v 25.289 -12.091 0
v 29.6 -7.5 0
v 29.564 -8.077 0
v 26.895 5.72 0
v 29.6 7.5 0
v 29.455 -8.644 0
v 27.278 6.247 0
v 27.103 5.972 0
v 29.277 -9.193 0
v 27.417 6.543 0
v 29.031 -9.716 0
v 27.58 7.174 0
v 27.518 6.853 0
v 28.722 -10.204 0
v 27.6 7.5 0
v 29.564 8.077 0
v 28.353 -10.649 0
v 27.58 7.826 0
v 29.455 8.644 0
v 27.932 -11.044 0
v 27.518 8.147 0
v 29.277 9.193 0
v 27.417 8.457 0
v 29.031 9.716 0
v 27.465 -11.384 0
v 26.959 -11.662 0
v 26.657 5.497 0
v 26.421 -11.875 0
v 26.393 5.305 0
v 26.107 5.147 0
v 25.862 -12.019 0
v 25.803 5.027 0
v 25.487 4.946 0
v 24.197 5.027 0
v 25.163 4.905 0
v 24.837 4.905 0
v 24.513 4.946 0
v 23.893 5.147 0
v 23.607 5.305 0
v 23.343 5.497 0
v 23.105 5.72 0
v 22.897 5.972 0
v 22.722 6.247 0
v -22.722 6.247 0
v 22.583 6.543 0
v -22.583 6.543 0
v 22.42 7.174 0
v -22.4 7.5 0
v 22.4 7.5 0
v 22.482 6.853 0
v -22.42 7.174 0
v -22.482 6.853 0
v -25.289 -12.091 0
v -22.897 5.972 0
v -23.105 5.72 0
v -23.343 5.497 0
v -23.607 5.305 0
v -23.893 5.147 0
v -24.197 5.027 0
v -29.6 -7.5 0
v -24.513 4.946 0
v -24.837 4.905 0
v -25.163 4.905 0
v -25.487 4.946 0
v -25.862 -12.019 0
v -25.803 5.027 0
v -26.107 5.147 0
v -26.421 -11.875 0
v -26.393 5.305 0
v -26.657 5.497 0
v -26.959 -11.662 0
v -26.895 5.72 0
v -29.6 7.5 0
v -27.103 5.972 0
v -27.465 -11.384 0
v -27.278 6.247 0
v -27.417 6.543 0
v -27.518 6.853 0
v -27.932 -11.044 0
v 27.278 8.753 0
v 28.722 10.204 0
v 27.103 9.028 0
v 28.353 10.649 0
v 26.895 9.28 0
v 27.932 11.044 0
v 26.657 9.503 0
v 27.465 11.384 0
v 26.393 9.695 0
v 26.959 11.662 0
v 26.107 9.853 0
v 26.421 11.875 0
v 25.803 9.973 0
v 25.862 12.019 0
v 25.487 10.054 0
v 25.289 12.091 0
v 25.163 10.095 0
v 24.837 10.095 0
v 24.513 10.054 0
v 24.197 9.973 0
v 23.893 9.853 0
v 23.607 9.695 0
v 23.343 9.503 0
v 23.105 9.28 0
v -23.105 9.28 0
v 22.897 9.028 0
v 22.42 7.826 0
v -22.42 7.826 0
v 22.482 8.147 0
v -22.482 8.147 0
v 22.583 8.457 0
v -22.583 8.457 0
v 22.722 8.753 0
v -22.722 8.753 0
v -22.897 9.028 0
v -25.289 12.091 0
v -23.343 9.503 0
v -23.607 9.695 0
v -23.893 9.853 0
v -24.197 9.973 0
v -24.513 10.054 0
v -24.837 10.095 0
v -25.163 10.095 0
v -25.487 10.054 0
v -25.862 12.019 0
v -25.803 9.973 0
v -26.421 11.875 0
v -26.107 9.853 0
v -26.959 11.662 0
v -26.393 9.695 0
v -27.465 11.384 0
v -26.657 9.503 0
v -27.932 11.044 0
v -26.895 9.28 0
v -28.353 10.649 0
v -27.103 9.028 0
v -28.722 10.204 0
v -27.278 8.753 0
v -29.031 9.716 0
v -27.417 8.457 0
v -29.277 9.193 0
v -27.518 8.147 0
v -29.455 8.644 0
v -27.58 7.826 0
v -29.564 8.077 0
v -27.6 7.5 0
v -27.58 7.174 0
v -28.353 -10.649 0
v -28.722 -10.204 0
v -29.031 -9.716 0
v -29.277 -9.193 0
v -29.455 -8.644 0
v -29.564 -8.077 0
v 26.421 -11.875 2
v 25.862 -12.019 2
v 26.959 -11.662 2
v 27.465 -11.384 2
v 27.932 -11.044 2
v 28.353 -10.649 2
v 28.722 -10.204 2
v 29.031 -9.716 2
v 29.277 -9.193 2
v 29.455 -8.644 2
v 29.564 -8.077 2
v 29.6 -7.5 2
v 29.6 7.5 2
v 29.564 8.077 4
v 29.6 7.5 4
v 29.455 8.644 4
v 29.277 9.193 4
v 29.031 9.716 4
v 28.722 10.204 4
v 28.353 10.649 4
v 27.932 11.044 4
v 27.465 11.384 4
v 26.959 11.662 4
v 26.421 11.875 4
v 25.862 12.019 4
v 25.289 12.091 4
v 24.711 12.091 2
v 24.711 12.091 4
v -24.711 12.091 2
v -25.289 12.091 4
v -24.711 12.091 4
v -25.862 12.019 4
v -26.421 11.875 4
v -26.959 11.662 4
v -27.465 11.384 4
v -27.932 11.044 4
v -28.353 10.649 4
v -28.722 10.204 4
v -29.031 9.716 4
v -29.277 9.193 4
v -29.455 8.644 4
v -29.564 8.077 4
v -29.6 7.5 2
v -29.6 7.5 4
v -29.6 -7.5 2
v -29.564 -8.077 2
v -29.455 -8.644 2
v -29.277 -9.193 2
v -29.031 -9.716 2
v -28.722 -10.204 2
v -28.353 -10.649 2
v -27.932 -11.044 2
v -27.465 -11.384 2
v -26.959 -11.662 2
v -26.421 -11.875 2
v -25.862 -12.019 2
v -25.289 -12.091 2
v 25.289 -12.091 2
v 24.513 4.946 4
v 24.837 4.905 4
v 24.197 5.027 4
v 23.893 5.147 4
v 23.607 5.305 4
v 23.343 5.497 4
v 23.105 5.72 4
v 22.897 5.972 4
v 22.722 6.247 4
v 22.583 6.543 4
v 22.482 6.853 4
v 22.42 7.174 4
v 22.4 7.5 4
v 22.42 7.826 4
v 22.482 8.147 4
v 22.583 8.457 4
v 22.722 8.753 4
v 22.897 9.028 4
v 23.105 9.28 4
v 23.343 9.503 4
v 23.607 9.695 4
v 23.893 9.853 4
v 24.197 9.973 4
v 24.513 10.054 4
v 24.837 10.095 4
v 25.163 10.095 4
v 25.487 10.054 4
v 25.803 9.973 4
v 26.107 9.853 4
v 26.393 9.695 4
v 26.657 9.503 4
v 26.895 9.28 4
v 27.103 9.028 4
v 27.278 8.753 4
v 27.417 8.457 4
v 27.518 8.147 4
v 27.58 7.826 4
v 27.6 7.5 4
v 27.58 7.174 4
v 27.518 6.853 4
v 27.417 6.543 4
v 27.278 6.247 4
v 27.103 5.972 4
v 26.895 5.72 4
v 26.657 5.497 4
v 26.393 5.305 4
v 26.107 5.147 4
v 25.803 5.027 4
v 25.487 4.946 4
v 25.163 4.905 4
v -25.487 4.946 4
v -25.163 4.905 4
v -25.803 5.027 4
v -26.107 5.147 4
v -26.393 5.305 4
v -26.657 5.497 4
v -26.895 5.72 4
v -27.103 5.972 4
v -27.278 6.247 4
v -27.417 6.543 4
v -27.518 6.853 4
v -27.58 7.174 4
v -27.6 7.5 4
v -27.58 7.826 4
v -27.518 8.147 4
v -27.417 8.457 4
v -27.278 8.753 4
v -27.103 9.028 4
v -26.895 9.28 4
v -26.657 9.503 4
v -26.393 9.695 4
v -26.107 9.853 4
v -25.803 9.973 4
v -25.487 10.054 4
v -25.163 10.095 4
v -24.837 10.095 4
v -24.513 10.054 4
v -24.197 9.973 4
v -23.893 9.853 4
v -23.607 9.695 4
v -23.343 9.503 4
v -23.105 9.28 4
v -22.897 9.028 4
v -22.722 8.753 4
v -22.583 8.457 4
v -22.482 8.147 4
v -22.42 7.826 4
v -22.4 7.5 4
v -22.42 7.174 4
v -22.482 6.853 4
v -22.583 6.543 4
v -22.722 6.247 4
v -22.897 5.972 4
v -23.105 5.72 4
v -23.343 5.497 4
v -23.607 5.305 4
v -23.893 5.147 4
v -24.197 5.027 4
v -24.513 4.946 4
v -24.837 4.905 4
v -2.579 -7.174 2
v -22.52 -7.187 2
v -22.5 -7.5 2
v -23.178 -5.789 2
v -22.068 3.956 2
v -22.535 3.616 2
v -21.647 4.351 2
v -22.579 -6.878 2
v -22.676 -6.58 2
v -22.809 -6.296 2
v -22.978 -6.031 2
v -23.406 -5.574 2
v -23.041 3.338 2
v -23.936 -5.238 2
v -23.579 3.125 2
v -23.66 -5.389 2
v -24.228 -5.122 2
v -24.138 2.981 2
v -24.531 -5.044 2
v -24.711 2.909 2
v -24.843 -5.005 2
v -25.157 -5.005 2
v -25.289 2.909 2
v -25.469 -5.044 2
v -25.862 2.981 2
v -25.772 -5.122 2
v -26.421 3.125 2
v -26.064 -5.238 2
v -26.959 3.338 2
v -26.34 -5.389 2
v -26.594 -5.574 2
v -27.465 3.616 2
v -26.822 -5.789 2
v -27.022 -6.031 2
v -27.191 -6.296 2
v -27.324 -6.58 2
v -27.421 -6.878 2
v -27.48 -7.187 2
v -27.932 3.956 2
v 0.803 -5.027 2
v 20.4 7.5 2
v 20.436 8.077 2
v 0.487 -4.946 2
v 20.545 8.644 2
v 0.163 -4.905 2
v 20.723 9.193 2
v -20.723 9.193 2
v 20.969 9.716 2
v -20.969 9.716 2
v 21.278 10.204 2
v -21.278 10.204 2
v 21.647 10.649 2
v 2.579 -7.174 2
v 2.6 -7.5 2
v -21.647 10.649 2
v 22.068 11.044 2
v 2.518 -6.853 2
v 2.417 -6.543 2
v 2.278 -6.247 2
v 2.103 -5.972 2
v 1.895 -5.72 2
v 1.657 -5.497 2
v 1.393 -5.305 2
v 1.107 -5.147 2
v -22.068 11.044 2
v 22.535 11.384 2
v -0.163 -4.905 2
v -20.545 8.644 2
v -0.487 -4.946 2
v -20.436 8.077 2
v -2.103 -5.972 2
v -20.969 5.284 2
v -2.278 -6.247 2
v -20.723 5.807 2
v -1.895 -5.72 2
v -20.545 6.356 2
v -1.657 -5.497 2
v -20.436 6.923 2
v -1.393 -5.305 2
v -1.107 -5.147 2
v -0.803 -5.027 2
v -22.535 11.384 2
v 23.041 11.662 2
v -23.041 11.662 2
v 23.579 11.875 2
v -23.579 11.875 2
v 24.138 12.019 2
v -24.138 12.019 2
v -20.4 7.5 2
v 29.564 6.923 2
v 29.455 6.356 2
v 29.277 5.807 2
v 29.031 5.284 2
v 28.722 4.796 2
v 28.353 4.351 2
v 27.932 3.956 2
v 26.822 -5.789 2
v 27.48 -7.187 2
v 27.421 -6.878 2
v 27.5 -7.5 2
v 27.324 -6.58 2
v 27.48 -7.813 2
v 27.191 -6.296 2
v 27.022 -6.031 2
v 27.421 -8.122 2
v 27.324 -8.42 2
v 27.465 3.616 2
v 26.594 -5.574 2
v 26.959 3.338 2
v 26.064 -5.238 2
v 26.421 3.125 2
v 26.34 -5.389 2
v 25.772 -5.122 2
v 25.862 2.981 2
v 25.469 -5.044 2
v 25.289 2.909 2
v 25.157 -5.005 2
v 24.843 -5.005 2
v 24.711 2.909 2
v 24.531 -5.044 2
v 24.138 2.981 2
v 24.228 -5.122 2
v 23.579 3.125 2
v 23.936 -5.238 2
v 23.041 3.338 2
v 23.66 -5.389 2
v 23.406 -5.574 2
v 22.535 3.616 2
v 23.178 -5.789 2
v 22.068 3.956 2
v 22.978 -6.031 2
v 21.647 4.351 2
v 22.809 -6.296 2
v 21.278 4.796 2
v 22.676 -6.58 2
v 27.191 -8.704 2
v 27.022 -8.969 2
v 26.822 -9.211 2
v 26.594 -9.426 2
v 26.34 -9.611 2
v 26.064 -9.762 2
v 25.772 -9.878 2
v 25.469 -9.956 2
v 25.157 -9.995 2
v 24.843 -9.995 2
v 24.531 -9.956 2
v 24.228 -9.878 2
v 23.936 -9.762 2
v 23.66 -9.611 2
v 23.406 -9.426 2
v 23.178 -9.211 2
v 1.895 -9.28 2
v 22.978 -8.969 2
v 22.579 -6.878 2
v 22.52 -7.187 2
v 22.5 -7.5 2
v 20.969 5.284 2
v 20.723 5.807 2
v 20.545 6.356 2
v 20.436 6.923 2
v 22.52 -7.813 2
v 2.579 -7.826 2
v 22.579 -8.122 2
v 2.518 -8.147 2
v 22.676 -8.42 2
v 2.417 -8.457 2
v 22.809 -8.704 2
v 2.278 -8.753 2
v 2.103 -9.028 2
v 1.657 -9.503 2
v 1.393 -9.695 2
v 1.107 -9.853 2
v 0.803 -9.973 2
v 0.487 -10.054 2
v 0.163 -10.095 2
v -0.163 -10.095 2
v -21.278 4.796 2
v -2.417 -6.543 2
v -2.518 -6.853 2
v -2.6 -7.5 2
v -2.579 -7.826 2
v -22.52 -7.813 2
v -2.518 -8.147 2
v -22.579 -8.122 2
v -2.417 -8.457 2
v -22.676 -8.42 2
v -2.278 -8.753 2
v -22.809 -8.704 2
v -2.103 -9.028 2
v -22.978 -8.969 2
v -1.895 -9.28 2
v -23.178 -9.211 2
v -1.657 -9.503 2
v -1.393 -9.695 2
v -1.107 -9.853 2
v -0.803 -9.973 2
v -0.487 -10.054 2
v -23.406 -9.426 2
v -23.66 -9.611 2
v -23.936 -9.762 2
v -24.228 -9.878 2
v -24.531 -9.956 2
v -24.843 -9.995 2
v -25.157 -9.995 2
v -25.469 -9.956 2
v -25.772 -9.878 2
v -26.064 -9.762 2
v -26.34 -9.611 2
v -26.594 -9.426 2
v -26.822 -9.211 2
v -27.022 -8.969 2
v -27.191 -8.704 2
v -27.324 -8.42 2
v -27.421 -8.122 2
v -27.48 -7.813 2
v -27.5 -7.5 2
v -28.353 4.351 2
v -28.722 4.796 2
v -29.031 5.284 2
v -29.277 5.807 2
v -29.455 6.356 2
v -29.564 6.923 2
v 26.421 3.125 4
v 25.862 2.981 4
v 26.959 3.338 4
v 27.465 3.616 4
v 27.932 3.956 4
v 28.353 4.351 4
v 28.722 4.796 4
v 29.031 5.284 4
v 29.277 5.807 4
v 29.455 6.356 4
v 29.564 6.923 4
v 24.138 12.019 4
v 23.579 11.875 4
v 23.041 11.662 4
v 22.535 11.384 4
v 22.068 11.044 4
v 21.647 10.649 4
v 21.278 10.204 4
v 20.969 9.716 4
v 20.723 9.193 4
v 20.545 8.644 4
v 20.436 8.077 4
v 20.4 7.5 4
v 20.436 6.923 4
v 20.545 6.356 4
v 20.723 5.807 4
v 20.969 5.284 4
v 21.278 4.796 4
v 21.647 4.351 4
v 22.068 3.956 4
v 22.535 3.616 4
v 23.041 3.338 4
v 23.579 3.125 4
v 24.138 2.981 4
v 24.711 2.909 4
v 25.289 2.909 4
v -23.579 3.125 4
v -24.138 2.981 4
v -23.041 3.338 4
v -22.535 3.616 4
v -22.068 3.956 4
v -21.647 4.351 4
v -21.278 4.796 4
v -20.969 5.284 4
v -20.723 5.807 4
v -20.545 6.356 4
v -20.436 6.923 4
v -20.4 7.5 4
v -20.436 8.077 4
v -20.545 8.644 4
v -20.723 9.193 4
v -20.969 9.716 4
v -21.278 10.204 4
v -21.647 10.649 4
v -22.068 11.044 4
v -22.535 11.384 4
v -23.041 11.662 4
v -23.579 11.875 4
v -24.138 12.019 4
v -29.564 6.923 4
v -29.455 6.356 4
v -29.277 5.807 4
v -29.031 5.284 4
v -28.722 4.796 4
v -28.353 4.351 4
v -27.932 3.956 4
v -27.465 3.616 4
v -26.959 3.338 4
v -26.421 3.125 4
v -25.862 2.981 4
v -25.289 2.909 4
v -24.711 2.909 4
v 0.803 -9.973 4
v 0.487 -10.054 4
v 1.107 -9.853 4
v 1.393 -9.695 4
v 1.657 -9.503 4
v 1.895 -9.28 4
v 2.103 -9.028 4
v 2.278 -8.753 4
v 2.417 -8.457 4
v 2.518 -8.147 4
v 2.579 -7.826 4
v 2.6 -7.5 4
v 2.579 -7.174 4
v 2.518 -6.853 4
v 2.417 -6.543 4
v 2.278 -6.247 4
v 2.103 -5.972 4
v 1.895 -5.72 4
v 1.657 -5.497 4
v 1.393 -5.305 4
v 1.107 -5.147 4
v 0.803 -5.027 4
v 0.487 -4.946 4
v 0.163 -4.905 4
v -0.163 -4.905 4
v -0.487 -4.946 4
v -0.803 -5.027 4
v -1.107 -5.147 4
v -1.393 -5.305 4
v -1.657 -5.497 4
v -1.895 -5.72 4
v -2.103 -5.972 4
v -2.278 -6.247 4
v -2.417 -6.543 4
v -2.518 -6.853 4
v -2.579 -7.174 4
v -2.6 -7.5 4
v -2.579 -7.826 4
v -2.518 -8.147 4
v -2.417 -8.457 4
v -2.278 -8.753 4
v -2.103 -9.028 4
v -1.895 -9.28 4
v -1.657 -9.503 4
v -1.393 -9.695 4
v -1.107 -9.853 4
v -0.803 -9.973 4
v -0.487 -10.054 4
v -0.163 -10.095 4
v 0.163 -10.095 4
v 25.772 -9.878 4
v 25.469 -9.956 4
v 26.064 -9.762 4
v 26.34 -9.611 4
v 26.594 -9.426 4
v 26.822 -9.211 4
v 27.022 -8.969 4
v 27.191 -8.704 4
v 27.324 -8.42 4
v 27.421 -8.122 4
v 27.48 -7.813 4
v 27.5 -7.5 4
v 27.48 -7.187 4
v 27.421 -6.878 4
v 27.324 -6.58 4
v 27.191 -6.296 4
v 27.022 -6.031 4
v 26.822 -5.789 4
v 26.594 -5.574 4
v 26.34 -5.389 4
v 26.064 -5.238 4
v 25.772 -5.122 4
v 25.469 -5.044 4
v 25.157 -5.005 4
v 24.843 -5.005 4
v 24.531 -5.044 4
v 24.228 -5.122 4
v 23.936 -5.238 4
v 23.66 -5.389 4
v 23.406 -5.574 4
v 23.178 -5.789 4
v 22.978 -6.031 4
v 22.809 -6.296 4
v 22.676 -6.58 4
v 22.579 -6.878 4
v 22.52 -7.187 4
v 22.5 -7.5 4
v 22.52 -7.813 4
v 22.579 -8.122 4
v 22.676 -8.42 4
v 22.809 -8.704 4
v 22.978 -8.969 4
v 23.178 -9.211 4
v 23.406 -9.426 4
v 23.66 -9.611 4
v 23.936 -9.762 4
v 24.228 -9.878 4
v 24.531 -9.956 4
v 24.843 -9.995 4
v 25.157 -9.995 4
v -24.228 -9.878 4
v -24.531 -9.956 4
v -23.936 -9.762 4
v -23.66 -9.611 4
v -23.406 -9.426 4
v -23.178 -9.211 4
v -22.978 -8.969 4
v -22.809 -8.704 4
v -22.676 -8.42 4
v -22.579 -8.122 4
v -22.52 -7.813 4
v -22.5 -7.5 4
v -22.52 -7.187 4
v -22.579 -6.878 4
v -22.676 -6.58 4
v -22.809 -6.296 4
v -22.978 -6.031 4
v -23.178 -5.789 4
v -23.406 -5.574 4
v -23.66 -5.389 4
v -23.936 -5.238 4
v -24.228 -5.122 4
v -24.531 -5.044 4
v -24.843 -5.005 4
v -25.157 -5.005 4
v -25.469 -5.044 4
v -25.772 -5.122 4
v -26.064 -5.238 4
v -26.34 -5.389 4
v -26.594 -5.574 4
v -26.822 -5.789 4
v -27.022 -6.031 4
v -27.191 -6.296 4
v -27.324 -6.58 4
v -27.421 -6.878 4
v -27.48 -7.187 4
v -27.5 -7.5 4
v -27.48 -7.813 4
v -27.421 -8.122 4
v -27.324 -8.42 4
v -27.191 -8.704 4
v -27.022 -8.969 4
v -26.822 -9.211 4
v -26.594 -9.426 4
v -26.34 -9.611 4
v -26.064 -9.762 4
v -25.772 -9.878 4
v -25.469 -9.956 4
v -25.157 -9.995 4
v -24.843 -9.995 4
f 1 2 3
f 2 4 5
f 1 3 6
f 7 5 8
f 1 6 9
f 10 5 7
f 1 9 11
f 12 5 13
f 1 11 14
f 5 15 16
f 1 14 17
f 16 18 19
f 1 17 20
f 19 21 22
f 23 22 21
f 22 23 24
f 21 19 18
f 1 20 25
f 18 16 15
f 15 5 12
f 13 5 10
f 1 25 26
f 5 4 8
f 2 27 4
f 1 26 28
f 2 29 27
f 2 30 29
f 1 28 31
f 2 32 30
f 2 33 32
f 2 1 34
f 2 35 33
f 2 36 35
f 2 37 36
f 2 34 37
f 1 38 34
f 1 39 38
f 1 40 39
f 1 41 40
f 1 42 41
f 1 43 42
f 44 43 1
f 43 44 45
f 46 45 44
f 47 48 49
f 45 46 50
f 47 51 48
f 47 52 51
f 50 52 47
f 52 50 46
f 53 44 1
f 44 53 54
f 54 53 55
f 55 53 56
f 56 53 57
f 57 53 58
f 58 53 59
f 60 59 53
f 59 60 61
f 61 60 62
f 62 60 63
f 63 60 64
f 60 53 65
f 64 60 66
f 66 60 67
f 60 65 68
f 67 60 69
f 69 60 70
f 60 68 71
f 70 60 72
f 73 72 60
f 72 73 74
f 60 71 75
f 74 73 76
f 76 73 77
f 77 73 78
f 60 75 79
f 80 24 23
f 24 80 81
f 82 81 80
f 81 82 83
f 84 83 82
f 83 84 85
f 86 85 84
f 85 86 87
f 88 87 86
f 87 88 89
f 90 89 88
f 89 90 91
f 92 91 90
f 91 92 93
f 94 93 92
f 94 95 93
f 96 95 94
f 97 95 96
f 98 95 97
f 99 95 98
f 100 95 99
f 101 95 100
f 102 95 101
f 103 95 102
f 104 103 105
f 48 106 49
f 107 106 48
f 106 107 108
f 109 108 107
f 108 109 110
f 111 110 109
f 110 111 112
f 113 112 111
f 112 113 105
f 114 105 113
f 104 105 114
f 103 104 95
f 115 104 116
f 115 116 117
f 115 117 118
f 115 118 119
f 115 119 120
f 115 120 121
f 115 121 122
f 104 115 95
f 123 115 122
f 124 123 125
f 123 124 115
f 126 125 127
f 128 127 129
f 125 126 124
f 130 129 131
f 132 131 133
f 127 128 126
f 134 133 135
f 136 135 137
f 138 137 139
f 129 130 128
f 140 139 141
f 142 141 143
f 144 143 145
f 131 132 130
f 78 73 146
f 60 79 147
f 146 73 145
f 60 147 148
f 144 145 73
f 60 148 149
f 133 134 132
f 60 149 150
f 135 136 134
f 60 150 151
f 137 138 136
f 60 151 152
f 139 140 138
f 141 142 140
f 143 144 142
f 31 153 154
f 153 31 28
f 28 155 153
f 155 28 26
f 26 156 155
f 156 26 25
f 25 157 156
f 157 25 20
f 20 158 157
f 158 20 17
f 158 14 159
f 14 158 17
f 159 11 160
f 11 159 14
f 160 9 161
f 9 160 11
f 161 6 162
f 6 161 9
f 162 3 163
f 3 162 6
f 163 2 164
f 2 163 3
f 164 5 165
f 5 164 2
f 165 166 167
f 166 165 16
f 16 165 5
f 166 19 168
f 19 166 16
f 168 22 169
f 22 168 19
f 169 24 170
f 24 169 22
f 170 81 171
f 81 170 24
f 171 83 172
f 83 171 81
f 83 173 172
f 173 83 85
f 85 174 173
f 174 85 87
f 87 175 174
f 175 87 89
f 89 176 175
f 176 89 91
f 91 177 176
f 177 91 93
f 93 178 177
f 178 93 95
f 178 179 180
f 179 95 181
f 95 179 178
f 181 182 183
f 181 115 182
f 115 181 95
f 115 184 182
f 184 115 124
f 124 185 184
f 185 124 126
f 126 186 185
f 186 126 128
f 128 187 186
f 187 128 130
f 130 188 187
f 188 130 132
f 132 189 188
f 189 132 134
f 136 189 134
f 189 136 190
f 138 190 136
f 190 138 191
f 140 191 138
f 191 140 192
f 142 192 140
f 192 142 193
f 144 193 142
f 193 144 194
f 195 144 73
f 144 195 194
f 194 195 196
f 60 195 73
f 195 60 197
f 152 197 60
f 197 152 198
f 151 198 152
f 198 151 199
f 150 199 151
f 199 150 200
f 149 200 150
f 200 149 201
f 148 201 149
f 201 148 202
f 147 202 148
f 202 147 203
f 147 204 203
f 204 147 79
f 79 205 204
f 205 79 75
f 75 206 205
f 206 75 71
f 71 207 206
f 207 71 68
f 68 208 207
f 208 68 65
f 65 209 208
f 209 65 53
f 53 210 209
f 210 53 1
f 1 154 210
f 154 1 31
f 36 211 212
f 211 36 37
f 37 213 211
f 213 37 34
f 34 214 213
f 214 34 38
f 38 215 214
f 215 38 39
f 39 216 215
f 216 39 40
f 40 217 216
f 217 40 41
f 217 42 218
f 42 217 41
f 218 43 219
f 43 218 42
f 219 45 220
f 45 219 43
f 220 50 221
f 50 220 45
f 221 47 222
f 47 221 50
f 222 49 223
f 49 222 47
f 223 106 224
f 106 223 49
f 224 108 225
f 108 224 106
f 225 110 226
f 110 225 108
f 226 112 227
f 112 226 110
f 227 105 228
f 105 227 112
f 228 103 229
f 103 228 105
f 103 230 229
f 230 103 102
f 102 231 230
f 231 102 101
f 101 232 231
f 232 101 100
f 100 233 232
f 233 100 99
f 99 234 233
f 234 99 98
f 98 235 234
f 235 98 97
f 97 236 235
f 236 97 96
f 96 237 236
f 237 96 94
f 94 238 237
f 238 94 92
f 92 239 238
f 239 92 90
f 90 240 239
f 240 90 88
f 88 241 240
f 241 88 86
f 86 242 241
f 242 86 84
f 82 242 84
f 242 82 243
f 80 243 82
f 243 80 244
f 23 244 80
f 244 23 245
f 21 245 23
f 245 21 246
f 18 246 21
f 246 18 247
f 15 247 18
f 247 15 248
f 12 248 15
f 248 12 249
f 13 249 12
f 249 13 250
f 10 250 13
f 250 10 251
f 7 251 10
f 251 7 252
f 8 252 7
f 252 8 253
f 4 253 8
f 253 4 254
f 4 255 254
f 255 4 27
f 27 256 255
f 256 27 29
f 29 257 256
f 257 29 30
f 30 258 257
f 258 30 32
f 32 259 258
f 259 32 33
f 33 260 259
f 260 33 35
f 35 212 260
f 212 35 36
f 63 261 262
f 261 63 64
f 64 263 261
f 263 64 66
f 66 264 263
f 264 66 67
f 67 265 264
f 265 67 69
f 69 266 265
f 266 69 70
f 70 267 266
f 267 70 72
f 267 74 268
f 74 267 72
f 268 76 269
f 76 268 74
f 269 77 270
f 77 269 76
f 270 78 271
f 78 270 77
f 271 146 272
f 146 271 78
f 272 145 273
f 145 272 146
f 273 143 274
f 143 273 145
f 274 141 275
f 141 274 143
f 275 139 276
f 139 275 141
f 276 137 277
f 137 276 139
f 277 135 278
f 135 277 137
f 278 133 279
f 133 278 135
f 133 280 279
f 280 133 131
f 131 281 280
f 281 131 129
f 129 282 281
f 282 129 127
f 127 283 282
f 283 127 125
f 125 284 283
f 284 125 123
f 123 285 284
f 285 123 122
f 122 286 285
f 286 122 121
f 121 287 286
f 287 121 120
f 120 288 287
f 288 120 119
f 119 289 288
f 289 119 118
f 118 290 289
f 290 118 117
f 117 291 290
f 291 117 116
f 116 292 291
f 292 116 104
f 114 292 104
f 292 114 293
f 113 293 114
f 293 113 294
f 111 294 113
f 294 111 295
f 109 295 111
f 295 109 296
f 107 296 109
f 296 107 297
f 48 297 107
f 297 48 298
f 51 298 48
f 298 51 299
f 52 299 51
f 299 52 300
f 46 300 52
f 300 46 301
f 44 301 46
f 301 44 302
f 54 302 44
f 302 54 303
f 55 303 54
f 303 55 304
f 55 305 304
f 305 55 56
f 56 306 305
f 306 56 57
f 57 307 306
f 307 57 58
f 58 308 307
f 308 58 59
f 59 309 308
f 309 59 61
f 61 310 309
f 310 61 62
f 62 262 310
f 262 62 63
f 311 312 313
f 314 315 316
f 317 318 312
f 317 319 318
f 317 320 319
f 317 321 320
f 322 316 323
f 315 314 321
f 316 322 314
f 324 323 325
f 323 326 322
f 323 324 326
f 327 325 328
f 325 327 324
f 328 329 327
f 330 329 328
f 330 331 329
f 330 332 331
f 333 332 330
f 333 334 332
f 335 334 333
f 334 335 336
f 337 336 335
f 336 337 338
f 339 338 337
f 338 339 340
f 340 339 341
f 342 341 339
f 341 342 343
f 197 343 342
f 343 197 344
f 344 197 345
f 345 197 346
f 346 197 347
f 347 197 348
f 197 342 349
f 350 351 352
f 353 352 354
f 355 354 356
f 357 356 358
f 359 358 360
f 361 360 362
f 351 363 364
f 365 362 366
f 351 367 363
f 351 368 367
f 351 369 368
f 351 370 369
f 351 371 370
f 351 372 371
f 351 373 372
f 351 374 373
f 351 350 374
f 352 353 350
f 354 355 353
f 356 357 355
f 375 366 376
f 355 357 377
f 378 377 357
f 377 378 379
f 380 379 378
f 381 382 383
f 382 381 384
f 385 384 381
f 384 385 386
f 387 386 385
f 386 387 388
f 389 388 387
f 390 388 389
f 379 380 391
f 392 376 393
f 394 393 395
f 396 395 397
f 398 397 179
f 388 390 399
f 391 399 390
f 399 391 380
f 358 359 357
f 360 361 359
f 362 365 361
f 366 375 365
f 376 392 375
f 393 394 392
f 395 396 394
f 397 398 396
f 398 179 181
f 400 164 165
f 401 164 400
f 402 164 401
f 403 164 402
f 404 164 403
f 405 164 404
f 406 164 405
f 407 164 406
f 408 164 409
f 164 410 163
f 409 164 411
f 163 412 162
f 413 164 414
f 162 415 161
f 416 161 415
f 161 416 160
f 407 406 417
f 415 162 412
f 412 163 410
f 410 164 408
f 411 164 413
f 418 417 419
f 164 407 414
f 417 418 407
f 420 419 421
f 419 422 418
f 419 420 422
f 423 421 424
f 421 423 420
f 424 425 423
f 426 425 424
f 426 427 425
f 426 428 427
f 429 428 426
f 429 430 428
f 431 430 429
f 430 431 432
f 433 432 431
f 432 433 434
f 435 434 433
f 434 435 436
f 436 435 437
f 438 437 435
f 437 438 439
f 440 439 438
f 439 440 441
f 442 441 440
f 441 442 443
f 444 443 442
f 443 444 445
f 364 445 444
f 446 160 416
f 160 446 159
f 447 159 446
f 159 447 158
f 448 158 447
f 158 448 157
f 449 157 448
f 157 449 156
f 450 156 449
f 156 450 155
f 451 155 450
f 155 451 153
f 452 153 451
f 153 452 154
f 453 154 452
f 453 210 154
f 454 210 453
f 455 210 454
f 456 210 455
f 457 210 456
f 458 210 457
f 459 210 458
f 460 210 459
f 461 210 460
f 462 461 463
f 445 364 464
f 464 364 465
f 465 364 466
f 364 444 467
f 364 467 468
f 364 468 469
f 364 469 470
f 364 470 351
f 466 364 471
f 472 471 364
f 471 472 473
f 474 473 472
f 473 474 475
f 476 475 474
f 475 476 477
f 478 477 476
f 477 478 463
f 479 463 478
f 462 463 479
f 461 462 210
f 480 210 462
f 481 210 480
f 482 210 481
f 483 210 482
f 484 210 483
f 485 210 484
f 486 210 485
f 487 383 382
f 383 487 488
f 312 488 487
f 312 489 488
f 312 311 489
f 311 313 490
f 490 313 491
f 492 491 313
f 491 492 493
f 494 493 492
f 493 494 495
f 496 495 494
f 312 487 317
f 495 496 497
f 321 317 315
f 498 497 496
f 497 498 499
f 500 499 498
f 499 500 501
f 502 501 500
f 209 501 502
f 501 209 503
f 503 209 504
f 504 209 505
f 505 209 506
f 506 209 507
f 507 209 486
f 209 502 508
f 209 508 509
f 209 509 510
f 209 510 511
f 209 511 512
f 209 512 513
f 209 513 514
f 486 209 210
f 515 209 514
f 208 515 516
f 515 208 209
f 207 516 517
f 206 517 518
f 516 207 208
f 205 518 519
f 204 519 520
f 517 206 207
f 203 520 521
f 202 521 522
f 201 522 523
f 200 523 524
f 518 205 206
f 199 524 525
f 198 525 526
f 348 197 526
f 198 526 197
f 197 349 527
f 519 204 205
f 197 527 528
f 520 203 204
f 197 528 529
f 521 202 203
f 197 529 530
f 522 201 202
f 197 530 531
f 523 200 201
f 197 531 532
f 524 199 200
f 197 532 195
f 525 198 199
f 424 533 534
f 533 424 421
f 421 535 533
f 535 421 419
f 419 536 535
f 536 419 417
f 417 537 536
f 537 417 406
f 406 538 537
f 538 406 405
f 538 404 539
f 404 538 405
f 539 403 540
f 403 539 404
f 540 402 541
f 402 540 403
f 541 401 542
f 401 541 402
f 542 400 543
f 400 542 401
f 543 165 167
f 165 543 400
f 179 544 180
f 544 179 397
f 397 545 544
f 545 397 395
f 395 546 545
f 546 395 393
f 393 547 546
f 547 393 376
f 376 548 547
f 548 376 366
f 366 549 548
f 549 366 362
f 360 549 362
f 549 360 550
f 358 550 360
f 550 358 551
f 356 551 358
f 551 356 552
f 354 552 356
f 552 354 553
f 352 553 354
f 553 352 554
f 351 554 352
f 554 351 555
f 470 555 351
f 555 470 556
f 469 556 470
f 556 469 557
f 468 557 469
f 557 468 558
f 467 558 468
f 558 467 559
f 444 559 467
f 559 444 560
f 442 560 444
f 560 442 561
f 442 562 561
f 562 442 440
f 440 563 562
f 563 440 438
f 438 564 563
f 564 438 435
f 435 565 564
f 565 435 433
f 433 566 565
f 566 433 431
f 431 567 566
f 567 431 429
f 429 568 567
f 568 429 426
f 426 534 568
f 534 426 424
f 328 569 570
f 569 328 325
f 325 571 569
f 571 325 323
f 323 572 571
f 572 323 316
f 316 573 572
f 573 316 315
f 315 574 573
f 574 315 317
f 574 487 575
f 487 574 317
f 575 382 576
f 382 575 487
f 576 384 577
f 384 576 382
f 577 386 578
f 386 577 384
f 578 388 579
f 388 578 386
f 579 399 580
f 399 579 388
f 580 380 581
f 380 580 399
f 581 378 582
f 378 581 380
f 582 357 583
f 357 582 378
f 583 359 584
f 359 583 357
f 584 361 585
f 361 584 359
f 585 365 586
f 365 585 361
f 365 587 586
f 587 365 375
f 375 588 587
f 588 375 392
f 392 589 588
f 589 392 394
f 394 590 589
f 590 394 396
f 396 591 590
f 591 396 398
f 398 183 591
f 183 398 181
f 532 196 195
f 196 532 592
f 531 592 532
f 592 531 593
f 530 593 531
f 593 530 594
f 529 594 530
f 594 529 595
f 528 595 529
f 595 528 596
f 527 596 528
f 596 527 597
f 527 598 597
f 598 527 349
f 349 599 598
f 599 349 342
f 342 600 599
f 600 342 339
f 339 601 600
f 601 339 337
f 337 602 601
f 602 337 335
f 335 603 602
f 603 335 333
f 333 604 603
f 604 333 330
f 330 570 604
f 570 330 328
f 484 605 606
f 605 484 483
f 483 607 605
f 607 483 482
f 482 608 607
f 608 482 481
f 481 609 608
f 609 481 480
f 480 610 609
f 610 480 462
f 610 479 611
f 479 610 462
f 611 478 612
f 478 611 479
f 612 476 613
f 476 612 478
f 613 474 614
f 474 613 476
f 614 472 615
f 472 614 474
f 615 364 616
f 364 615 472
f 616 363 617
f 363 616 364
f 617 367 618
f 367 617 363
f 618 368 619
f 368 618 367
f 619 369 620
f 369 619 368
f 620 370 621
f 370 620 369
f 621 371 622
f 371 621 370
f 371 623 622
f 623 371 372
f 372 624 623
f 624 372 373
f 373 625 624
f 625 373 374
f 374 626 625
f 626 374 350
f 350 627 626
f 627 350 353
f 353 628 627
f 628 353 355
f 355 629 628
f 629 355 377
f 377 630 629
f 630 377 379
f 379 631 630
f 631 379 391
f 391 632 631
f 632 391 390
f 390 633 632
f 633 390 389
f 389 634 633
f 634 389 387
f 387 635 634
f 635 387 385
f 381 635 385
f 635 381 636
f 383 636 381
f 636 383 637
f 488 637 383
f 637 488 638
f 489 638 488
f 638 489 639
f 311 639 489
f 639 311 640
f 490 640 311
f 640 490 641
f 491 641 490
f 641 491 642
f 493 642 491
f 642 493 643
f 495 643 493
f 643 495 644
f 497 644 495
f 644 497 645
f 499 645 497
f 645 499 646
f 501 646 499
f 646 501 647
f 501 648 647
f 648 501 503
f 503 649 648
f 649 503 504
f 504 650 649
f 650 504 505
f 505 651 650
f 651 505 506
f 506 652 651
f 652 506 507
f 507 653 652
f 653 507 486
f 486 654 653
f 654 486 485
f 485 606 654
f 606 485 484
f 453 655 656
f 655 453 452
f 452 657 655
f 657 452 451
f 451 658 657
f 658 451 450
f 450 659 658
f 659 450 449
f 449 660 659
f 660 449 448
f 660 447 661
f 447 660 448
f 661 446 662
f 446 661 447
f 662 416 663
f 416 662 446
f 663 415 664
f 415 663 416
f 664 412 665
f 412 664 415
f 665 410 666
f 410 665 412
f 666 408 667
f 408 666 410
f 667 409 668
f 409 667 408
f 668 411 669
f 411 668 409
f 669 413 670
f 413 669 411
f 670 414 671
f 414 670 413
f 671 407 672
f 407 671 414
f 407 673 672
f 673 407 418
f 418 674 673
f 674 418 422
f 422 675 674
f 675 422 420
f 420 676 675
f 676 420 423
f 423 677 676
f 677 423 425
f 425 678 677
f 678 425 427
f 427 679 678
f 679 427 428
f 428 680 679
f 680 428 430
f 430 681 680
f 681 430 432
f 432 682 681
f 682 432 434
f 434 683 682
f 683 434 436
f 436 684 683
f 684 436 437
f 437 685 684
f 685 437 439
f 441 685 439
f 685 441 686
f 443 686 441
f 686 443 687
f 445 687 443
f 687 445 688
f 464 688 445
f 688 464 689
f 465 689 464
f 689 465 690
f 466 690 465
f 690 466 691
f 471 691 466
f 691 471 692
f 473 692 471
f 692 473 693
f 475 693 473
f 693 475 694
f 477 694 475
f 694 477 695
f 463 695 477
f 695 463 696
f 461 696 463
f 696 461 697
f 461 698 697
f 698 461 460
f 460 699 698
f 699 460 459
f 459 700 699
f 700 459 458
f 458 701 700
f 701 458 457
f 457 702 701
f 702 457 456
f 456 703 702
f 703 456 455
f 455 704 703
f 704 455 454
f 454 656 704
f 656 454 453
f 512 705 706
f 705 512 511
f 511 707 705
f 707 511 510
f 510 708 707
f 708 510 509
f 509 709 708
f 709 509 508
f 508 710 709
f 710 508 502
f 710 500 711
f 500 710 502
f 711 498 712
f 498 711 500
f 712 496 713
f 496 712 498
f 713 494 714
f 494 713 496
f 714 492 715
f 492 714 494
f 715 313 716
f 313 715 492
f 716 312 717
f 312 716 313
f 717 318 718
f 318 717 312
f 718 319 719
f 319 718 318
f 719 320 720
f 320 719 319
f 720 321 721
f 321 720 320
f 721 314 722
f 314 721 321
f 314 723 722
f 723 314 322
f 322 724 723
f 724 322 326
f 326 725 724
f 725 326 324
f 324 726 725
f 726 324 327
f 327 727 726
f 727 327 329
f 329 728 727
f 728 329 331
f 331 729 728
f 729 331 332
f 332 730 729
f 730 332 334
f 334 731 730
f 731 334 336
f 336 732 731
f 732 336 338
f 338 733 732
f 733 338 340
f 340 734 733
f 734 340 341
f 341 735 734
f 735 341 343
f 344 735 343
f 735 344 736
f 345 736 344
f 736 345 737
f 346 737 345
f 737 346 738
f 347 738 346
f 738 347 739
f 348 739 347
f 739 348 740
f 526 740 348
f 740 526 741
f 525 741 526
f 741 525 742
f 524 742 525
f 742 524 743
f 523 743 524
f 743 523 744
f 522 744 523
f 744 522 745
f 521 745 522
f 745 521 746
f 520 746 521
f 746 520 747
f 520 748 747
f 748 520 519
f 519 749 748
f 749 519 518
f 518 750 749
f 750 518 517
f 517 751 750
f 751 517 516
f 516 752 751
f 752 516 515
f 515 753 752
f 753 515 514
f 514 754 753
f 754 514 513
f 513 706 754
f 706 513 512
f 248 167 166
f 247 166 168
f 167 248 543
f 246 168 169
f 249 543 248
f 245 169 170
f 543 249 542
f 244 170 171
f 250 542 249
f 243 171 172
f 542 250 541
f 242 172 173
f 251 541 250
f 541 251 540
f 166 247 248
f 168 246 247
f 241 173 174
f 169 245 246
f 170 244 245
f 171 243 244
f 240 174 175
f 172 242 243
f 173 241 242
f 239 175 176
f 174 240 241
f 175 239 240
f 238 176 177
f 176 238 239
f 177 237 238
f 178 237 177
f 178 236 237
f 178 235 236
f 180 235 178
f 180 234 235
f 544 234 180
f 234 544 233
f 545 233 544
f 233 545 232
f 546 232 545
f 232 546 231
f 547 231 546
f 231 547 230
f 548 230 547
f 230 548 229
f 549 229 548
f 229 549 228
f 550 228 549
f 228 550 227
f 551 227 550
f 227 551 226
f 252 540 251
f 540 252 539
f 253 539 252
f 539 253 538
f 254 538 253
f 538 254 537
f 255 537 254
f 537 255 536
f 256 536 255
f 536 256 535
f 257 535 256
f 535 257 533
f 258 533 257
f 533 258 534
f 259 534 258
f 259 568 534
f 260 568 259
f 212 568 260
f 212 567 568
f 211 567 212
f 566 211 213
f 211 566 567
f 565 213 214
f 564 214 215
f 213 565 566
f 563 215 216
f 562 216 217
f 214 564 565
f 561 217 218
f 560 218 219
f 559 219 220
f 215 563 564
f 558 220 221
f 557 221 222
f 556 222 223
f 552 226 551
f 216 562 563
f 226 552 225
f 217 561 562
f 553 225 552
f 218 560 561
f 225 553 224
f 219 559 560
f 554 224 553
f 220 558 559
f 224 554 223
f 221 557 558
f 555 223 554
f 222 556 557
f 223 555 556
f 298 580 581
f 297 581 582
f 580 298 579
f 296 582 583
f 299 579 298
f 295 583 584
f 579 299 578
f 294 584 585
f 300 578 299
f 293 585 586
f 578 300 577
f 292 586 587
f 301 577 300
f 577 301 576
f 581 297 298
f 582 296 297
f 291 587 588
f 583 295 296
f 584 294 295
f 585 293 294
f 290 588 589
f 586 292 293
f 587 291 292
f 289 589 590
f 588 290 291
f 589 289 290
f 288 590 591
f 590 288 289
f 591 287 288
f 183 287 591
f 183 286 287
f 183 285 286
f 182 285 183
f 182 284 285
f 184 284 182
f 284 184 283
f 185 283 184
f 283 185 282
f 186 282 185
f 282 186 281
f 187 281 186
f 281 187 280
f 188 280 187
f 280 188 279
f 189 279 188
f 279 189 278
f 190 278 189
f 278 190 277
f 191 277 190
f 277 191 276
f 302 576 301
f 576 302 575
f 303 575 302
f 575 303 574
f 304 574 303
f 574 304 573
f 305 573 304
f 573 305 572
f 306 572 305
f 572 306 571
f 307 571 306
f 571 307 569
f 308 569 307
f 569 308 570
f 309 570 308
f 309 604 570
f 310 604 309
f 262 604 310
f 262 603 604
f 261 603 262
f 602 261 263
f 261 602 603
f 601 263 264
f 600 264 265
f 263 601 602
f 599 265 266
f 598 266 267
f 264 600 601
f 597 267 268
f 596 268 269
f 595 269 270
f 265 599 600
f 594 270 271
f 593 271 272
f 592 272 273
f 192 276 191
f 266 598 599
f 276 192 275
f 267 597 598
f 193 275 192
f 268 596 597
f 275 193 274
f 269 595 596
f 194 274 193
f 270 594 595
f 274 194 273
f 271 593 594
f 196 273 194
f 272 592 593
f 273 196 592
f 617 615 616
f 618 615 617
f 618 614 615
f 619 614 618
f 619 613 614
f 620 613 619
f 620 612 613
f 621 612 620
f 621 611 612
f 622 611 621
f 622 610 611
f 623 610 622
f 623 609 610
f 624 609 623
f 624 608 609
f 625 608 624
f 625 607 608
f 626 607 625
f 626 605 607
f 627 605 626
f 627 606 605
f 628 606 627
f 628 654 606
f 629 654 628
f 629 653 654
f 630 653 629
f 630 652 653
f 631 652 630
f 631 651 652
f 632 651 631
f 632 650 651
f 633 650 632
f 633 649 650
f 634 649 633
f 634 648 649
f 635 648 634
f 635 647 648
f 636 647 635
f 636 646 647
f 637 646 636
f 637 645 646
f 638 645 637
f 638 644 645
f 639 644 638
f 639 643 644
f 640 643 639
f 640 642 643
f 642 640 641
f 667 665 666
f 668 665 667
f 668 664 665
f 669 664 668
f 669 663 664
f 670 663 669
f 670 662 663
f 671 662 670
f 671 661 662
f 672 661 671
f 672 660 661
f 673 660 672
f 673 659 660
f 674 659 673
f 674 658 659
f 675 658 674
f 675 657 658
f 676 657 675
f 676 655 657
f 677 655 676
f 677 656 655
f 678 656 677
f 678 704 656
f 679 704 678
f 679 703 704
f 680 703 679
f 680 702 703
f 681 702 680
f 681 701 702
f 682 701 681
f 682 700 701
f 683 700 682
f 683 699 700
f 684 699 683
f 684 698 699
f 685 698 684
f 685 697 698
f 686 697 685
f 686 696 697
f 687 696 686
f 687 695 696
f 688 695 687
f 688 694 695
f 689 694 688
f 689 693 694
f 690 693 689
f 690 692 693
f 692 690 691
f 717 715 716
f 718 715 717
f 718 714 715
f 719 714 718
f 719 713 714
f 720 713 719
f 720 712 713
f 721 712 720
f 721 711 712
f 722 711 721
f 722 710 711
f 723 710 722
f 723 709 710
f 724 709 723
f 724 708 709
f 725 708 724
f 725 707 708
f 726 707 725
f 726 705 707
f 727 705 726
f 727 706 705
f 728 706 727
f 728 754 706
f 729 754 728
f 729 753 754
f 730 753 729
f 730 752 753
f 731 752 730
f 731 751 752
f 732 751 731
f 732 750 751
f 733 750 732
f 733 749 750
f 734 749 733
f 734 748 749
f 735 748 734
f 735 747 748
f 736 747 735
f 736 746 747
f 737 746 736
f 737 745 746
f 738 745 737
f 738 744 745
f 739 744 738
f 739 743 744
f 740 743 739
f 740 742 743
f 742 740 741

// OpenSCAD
// file: ../common/math.scad
//
// just some useful general math utilities
//

//
// min() and max() give you the lower or higher of their arguments,
// respectively.  They behave asymmetrically at 0, so as to establish a
// stable sort order, merely reversed, no matter which order the inputs come
// in.
//
// contributed by @vathpela
//
function min(x, y) = y > x ? x : y;
function max(x, y) = x >= y ? x : y;

//
// logx(x, b) is log base x of b aka logX(b)
//
// *sigh*, openscad's math primitives are so defective
//
// contributed by @vathpela
//
function logx(x, b) = log(x) / log(b);
// file: ../common/copies.scad
/*
  author: Christopher O'Brien  <obriencj@gmail.com>
  license: GPL v3
*/
use <../common/math.scad>

module copy_mirror(plane=[0, 0, 1]) {
     children();
     mirror(plane) children();
}


module copy_translate(x=0, y=0, z=0, copies=1) {
     if(copies) {
	  for(i = [0:copies]) {
	       translate([x * i, y * i, z * i]) {
		    children();
	       };
	  };
     } else {
	  children();
     };
}


module copy_rotate(x=0, y=0, z=0, copies=1) {
     if(copies) {
	  for(i = [0:copies]) {
	       rotate([x * i, y * i, z * i]) {
		    children();
	       };
	  };
     } else {
	  children();
     };
}


module copy_grid(offsets=[0, 0, 0], grid=[1, 1, 1]) {
     copy_translate(x=offsets.x, copies=grid.x-1) {
	  copy_translate(y=offsets.y, copies=grid.y-1) {
	       copy_translate(z=offsets.z, copies=grid.z-1) {
		    children();
	       };
	  };
     };
}


module duplicate(move_v=[0,0,0], rotate_v=[0,0,0]) {
     children();
     translate(move_v) {
	  rotate(rotate_v) {
	       children();
	  };
     };
}


//
// isomers() builds stereoisometric copies, horrifyingly laid out on the xy
// plane.
//
// you can specify how many copies with n=<NUMBER> or ns[xN, yN, zN],
// n=1 is the same as ns=[1, 0, 0]
// If the single n is nonzero, it is used, else the vector is.
//
// This is astonishingly close to actual n-dimensional chess.  You probably
// only want to choose n>1 on 2 or fewer planes at the same time. Inputs:
//
// contributed by @vathpela
//
module isomers(n=0, ns=[1, 0, 0], size=[1, 1, 1], debug=false)
{
    nm = [n ? n : ns[0], n ? 1 : ns[1], n ? 1 : ns[2]];

    xn = max(nm[0], 1);
    yn = max(nm[1], 1);
    zn = max(nm[2], 1);
    if (debug)
        echo("[xn,yn,zn]", [xn,yn,zn]);
    m = logn(xn*yn*zn, 2);

    xs = size[0];
    ys = size[1];
    zs = size[2];
    if (debug)
        echo("[xs,ys,zs]", [xs,ys,zs]);

    module zmirrorshift(origin=[0, 0, 0], x, y)
    {
        if (debug)
            echo("zmirror origin", origin);
        for (z = [0:1:zn-1])
        {
            shift0 = [origin[0] + xs/2 * 1.2 * (z-0.5)*-zn,
                      origin[1],
                      origin[2] + zs];
            shift1 = [origin[0] + xs/2 * 1.2 * (z-3.5)*zn - (xn) * xs * 1.2,
                      origin[1],
                      origin[2]];
            shift2 = [origin[0] + xs/2 * 1.2 * (z-0.5)*-zn,
                      origin[1],
                      origin[2]];

            if (z % 2 == 0 && zn != 1) {
                if (debug)
                    echo("za [z]", [z], "[zs]", [zs], "t([x,y,z])", shift0);
                translate(shift0) mirror([0, 0, 1]) children();
            } else {
                if (debug)
                    echo("zb [z]", [z], "[zs]", [zs], "t([x,y,z])", shift1);
                translate(zn == 1 ? shift2 : shift1) children();
            }
        }
    }

    module ymirrorshift(origin=[0, 0, 0], x)
    {
        if (debug)
            echo("ymirror origin", origin);
        for (y = [0:1:yn-1])
        {
            shift=[origin[0],
                   origin[1] + y * ys * 1.2,
                   origin[2]];
            if (debug)
                echo("ya [x,y,z]", [x,y,0], "[ys,zs]", [ys,zs], "t([x,y,z])", shift);
            if (y % 2 == 0) {
                zmirrorshift(shift, x, y) mirror([0, 1, 0]) children();
            } else {
                zmirrorshift(shift, x, y) children();
            }
        }
    }

    module xmirrorshift(origin=[0, 0, 0])
    {
        if (debug)
            echo("xmirror origin", origin);
        for (x = [0:1:xn-1])
        {
            shift=[origin[0] + x * xs * 1.2,
                   origin[1],
                   origin[2]];
            if (debug)
                echo("xa [x,y,z]", [x,0,0],
                     "[xs,ys,zs]", [xs,ys,zs],
                     "t([x,y,z])", shift);
            if (x % 2 == 0) {
                ymirrorshift(shift, x) mirror([1, 0, 0]) children();
            } else {
                ymirrorshift(shift, x) children();
            }
        }
    }

    xmirrorshift() children();
}

// The end.
// main file
use <../common/copies.scad>;


module bolt_holes(bolt_space, bolt_r, $fn=50) {
     offset = bolt_space / 2;

     translate([offset, 0, 0]) circle(r=bolt_r);
     translate([-offset, 0, 0]) circle(r=bolt_r);
}


module adapter_body(width, height, mink_r = 5) {
     translate([(-width / 2) + mink_r / 2, (-height / 2) + mink_r / 2, 0]) {
          minkowski() {
               circle(r=mink_r, $fn=50);
               square([width - mink_r, height - mink_r]);
          }
     }
}


module adapter_profile(bolt_space, rise, bolt_r) {
     extra = bolt_r + 2;
     difference() {
          adapter_body(bolt_space + extra, rise + extra, extra);
          translate([0, rise / 2, 0]) {
               bolt_holes(bolt_space, bolt_r);
          }
     }
}

module adapter(bolt_space = 50, rise = 15, bolt_r = 2.6) {
     linear_extrude(2) {
          adapter_profile(bolt_space, rise, bolt_r);
     }
     linear_extrude(4) {
          translate([0, -rise / 2, 0]) {
               bolt_holes(bolt_space, bolt_r-0.1);
               circle(r=bolt_r, $fn=50);
          }
          translate([0, rise / 2, 0]) {
               difference() {
                    bolt_holes(bolt_space, bolt_r+2);
                    bolt_holes(bolt_space, bolt_r);
               }
          }
     }
}


adapter();


// The end.
